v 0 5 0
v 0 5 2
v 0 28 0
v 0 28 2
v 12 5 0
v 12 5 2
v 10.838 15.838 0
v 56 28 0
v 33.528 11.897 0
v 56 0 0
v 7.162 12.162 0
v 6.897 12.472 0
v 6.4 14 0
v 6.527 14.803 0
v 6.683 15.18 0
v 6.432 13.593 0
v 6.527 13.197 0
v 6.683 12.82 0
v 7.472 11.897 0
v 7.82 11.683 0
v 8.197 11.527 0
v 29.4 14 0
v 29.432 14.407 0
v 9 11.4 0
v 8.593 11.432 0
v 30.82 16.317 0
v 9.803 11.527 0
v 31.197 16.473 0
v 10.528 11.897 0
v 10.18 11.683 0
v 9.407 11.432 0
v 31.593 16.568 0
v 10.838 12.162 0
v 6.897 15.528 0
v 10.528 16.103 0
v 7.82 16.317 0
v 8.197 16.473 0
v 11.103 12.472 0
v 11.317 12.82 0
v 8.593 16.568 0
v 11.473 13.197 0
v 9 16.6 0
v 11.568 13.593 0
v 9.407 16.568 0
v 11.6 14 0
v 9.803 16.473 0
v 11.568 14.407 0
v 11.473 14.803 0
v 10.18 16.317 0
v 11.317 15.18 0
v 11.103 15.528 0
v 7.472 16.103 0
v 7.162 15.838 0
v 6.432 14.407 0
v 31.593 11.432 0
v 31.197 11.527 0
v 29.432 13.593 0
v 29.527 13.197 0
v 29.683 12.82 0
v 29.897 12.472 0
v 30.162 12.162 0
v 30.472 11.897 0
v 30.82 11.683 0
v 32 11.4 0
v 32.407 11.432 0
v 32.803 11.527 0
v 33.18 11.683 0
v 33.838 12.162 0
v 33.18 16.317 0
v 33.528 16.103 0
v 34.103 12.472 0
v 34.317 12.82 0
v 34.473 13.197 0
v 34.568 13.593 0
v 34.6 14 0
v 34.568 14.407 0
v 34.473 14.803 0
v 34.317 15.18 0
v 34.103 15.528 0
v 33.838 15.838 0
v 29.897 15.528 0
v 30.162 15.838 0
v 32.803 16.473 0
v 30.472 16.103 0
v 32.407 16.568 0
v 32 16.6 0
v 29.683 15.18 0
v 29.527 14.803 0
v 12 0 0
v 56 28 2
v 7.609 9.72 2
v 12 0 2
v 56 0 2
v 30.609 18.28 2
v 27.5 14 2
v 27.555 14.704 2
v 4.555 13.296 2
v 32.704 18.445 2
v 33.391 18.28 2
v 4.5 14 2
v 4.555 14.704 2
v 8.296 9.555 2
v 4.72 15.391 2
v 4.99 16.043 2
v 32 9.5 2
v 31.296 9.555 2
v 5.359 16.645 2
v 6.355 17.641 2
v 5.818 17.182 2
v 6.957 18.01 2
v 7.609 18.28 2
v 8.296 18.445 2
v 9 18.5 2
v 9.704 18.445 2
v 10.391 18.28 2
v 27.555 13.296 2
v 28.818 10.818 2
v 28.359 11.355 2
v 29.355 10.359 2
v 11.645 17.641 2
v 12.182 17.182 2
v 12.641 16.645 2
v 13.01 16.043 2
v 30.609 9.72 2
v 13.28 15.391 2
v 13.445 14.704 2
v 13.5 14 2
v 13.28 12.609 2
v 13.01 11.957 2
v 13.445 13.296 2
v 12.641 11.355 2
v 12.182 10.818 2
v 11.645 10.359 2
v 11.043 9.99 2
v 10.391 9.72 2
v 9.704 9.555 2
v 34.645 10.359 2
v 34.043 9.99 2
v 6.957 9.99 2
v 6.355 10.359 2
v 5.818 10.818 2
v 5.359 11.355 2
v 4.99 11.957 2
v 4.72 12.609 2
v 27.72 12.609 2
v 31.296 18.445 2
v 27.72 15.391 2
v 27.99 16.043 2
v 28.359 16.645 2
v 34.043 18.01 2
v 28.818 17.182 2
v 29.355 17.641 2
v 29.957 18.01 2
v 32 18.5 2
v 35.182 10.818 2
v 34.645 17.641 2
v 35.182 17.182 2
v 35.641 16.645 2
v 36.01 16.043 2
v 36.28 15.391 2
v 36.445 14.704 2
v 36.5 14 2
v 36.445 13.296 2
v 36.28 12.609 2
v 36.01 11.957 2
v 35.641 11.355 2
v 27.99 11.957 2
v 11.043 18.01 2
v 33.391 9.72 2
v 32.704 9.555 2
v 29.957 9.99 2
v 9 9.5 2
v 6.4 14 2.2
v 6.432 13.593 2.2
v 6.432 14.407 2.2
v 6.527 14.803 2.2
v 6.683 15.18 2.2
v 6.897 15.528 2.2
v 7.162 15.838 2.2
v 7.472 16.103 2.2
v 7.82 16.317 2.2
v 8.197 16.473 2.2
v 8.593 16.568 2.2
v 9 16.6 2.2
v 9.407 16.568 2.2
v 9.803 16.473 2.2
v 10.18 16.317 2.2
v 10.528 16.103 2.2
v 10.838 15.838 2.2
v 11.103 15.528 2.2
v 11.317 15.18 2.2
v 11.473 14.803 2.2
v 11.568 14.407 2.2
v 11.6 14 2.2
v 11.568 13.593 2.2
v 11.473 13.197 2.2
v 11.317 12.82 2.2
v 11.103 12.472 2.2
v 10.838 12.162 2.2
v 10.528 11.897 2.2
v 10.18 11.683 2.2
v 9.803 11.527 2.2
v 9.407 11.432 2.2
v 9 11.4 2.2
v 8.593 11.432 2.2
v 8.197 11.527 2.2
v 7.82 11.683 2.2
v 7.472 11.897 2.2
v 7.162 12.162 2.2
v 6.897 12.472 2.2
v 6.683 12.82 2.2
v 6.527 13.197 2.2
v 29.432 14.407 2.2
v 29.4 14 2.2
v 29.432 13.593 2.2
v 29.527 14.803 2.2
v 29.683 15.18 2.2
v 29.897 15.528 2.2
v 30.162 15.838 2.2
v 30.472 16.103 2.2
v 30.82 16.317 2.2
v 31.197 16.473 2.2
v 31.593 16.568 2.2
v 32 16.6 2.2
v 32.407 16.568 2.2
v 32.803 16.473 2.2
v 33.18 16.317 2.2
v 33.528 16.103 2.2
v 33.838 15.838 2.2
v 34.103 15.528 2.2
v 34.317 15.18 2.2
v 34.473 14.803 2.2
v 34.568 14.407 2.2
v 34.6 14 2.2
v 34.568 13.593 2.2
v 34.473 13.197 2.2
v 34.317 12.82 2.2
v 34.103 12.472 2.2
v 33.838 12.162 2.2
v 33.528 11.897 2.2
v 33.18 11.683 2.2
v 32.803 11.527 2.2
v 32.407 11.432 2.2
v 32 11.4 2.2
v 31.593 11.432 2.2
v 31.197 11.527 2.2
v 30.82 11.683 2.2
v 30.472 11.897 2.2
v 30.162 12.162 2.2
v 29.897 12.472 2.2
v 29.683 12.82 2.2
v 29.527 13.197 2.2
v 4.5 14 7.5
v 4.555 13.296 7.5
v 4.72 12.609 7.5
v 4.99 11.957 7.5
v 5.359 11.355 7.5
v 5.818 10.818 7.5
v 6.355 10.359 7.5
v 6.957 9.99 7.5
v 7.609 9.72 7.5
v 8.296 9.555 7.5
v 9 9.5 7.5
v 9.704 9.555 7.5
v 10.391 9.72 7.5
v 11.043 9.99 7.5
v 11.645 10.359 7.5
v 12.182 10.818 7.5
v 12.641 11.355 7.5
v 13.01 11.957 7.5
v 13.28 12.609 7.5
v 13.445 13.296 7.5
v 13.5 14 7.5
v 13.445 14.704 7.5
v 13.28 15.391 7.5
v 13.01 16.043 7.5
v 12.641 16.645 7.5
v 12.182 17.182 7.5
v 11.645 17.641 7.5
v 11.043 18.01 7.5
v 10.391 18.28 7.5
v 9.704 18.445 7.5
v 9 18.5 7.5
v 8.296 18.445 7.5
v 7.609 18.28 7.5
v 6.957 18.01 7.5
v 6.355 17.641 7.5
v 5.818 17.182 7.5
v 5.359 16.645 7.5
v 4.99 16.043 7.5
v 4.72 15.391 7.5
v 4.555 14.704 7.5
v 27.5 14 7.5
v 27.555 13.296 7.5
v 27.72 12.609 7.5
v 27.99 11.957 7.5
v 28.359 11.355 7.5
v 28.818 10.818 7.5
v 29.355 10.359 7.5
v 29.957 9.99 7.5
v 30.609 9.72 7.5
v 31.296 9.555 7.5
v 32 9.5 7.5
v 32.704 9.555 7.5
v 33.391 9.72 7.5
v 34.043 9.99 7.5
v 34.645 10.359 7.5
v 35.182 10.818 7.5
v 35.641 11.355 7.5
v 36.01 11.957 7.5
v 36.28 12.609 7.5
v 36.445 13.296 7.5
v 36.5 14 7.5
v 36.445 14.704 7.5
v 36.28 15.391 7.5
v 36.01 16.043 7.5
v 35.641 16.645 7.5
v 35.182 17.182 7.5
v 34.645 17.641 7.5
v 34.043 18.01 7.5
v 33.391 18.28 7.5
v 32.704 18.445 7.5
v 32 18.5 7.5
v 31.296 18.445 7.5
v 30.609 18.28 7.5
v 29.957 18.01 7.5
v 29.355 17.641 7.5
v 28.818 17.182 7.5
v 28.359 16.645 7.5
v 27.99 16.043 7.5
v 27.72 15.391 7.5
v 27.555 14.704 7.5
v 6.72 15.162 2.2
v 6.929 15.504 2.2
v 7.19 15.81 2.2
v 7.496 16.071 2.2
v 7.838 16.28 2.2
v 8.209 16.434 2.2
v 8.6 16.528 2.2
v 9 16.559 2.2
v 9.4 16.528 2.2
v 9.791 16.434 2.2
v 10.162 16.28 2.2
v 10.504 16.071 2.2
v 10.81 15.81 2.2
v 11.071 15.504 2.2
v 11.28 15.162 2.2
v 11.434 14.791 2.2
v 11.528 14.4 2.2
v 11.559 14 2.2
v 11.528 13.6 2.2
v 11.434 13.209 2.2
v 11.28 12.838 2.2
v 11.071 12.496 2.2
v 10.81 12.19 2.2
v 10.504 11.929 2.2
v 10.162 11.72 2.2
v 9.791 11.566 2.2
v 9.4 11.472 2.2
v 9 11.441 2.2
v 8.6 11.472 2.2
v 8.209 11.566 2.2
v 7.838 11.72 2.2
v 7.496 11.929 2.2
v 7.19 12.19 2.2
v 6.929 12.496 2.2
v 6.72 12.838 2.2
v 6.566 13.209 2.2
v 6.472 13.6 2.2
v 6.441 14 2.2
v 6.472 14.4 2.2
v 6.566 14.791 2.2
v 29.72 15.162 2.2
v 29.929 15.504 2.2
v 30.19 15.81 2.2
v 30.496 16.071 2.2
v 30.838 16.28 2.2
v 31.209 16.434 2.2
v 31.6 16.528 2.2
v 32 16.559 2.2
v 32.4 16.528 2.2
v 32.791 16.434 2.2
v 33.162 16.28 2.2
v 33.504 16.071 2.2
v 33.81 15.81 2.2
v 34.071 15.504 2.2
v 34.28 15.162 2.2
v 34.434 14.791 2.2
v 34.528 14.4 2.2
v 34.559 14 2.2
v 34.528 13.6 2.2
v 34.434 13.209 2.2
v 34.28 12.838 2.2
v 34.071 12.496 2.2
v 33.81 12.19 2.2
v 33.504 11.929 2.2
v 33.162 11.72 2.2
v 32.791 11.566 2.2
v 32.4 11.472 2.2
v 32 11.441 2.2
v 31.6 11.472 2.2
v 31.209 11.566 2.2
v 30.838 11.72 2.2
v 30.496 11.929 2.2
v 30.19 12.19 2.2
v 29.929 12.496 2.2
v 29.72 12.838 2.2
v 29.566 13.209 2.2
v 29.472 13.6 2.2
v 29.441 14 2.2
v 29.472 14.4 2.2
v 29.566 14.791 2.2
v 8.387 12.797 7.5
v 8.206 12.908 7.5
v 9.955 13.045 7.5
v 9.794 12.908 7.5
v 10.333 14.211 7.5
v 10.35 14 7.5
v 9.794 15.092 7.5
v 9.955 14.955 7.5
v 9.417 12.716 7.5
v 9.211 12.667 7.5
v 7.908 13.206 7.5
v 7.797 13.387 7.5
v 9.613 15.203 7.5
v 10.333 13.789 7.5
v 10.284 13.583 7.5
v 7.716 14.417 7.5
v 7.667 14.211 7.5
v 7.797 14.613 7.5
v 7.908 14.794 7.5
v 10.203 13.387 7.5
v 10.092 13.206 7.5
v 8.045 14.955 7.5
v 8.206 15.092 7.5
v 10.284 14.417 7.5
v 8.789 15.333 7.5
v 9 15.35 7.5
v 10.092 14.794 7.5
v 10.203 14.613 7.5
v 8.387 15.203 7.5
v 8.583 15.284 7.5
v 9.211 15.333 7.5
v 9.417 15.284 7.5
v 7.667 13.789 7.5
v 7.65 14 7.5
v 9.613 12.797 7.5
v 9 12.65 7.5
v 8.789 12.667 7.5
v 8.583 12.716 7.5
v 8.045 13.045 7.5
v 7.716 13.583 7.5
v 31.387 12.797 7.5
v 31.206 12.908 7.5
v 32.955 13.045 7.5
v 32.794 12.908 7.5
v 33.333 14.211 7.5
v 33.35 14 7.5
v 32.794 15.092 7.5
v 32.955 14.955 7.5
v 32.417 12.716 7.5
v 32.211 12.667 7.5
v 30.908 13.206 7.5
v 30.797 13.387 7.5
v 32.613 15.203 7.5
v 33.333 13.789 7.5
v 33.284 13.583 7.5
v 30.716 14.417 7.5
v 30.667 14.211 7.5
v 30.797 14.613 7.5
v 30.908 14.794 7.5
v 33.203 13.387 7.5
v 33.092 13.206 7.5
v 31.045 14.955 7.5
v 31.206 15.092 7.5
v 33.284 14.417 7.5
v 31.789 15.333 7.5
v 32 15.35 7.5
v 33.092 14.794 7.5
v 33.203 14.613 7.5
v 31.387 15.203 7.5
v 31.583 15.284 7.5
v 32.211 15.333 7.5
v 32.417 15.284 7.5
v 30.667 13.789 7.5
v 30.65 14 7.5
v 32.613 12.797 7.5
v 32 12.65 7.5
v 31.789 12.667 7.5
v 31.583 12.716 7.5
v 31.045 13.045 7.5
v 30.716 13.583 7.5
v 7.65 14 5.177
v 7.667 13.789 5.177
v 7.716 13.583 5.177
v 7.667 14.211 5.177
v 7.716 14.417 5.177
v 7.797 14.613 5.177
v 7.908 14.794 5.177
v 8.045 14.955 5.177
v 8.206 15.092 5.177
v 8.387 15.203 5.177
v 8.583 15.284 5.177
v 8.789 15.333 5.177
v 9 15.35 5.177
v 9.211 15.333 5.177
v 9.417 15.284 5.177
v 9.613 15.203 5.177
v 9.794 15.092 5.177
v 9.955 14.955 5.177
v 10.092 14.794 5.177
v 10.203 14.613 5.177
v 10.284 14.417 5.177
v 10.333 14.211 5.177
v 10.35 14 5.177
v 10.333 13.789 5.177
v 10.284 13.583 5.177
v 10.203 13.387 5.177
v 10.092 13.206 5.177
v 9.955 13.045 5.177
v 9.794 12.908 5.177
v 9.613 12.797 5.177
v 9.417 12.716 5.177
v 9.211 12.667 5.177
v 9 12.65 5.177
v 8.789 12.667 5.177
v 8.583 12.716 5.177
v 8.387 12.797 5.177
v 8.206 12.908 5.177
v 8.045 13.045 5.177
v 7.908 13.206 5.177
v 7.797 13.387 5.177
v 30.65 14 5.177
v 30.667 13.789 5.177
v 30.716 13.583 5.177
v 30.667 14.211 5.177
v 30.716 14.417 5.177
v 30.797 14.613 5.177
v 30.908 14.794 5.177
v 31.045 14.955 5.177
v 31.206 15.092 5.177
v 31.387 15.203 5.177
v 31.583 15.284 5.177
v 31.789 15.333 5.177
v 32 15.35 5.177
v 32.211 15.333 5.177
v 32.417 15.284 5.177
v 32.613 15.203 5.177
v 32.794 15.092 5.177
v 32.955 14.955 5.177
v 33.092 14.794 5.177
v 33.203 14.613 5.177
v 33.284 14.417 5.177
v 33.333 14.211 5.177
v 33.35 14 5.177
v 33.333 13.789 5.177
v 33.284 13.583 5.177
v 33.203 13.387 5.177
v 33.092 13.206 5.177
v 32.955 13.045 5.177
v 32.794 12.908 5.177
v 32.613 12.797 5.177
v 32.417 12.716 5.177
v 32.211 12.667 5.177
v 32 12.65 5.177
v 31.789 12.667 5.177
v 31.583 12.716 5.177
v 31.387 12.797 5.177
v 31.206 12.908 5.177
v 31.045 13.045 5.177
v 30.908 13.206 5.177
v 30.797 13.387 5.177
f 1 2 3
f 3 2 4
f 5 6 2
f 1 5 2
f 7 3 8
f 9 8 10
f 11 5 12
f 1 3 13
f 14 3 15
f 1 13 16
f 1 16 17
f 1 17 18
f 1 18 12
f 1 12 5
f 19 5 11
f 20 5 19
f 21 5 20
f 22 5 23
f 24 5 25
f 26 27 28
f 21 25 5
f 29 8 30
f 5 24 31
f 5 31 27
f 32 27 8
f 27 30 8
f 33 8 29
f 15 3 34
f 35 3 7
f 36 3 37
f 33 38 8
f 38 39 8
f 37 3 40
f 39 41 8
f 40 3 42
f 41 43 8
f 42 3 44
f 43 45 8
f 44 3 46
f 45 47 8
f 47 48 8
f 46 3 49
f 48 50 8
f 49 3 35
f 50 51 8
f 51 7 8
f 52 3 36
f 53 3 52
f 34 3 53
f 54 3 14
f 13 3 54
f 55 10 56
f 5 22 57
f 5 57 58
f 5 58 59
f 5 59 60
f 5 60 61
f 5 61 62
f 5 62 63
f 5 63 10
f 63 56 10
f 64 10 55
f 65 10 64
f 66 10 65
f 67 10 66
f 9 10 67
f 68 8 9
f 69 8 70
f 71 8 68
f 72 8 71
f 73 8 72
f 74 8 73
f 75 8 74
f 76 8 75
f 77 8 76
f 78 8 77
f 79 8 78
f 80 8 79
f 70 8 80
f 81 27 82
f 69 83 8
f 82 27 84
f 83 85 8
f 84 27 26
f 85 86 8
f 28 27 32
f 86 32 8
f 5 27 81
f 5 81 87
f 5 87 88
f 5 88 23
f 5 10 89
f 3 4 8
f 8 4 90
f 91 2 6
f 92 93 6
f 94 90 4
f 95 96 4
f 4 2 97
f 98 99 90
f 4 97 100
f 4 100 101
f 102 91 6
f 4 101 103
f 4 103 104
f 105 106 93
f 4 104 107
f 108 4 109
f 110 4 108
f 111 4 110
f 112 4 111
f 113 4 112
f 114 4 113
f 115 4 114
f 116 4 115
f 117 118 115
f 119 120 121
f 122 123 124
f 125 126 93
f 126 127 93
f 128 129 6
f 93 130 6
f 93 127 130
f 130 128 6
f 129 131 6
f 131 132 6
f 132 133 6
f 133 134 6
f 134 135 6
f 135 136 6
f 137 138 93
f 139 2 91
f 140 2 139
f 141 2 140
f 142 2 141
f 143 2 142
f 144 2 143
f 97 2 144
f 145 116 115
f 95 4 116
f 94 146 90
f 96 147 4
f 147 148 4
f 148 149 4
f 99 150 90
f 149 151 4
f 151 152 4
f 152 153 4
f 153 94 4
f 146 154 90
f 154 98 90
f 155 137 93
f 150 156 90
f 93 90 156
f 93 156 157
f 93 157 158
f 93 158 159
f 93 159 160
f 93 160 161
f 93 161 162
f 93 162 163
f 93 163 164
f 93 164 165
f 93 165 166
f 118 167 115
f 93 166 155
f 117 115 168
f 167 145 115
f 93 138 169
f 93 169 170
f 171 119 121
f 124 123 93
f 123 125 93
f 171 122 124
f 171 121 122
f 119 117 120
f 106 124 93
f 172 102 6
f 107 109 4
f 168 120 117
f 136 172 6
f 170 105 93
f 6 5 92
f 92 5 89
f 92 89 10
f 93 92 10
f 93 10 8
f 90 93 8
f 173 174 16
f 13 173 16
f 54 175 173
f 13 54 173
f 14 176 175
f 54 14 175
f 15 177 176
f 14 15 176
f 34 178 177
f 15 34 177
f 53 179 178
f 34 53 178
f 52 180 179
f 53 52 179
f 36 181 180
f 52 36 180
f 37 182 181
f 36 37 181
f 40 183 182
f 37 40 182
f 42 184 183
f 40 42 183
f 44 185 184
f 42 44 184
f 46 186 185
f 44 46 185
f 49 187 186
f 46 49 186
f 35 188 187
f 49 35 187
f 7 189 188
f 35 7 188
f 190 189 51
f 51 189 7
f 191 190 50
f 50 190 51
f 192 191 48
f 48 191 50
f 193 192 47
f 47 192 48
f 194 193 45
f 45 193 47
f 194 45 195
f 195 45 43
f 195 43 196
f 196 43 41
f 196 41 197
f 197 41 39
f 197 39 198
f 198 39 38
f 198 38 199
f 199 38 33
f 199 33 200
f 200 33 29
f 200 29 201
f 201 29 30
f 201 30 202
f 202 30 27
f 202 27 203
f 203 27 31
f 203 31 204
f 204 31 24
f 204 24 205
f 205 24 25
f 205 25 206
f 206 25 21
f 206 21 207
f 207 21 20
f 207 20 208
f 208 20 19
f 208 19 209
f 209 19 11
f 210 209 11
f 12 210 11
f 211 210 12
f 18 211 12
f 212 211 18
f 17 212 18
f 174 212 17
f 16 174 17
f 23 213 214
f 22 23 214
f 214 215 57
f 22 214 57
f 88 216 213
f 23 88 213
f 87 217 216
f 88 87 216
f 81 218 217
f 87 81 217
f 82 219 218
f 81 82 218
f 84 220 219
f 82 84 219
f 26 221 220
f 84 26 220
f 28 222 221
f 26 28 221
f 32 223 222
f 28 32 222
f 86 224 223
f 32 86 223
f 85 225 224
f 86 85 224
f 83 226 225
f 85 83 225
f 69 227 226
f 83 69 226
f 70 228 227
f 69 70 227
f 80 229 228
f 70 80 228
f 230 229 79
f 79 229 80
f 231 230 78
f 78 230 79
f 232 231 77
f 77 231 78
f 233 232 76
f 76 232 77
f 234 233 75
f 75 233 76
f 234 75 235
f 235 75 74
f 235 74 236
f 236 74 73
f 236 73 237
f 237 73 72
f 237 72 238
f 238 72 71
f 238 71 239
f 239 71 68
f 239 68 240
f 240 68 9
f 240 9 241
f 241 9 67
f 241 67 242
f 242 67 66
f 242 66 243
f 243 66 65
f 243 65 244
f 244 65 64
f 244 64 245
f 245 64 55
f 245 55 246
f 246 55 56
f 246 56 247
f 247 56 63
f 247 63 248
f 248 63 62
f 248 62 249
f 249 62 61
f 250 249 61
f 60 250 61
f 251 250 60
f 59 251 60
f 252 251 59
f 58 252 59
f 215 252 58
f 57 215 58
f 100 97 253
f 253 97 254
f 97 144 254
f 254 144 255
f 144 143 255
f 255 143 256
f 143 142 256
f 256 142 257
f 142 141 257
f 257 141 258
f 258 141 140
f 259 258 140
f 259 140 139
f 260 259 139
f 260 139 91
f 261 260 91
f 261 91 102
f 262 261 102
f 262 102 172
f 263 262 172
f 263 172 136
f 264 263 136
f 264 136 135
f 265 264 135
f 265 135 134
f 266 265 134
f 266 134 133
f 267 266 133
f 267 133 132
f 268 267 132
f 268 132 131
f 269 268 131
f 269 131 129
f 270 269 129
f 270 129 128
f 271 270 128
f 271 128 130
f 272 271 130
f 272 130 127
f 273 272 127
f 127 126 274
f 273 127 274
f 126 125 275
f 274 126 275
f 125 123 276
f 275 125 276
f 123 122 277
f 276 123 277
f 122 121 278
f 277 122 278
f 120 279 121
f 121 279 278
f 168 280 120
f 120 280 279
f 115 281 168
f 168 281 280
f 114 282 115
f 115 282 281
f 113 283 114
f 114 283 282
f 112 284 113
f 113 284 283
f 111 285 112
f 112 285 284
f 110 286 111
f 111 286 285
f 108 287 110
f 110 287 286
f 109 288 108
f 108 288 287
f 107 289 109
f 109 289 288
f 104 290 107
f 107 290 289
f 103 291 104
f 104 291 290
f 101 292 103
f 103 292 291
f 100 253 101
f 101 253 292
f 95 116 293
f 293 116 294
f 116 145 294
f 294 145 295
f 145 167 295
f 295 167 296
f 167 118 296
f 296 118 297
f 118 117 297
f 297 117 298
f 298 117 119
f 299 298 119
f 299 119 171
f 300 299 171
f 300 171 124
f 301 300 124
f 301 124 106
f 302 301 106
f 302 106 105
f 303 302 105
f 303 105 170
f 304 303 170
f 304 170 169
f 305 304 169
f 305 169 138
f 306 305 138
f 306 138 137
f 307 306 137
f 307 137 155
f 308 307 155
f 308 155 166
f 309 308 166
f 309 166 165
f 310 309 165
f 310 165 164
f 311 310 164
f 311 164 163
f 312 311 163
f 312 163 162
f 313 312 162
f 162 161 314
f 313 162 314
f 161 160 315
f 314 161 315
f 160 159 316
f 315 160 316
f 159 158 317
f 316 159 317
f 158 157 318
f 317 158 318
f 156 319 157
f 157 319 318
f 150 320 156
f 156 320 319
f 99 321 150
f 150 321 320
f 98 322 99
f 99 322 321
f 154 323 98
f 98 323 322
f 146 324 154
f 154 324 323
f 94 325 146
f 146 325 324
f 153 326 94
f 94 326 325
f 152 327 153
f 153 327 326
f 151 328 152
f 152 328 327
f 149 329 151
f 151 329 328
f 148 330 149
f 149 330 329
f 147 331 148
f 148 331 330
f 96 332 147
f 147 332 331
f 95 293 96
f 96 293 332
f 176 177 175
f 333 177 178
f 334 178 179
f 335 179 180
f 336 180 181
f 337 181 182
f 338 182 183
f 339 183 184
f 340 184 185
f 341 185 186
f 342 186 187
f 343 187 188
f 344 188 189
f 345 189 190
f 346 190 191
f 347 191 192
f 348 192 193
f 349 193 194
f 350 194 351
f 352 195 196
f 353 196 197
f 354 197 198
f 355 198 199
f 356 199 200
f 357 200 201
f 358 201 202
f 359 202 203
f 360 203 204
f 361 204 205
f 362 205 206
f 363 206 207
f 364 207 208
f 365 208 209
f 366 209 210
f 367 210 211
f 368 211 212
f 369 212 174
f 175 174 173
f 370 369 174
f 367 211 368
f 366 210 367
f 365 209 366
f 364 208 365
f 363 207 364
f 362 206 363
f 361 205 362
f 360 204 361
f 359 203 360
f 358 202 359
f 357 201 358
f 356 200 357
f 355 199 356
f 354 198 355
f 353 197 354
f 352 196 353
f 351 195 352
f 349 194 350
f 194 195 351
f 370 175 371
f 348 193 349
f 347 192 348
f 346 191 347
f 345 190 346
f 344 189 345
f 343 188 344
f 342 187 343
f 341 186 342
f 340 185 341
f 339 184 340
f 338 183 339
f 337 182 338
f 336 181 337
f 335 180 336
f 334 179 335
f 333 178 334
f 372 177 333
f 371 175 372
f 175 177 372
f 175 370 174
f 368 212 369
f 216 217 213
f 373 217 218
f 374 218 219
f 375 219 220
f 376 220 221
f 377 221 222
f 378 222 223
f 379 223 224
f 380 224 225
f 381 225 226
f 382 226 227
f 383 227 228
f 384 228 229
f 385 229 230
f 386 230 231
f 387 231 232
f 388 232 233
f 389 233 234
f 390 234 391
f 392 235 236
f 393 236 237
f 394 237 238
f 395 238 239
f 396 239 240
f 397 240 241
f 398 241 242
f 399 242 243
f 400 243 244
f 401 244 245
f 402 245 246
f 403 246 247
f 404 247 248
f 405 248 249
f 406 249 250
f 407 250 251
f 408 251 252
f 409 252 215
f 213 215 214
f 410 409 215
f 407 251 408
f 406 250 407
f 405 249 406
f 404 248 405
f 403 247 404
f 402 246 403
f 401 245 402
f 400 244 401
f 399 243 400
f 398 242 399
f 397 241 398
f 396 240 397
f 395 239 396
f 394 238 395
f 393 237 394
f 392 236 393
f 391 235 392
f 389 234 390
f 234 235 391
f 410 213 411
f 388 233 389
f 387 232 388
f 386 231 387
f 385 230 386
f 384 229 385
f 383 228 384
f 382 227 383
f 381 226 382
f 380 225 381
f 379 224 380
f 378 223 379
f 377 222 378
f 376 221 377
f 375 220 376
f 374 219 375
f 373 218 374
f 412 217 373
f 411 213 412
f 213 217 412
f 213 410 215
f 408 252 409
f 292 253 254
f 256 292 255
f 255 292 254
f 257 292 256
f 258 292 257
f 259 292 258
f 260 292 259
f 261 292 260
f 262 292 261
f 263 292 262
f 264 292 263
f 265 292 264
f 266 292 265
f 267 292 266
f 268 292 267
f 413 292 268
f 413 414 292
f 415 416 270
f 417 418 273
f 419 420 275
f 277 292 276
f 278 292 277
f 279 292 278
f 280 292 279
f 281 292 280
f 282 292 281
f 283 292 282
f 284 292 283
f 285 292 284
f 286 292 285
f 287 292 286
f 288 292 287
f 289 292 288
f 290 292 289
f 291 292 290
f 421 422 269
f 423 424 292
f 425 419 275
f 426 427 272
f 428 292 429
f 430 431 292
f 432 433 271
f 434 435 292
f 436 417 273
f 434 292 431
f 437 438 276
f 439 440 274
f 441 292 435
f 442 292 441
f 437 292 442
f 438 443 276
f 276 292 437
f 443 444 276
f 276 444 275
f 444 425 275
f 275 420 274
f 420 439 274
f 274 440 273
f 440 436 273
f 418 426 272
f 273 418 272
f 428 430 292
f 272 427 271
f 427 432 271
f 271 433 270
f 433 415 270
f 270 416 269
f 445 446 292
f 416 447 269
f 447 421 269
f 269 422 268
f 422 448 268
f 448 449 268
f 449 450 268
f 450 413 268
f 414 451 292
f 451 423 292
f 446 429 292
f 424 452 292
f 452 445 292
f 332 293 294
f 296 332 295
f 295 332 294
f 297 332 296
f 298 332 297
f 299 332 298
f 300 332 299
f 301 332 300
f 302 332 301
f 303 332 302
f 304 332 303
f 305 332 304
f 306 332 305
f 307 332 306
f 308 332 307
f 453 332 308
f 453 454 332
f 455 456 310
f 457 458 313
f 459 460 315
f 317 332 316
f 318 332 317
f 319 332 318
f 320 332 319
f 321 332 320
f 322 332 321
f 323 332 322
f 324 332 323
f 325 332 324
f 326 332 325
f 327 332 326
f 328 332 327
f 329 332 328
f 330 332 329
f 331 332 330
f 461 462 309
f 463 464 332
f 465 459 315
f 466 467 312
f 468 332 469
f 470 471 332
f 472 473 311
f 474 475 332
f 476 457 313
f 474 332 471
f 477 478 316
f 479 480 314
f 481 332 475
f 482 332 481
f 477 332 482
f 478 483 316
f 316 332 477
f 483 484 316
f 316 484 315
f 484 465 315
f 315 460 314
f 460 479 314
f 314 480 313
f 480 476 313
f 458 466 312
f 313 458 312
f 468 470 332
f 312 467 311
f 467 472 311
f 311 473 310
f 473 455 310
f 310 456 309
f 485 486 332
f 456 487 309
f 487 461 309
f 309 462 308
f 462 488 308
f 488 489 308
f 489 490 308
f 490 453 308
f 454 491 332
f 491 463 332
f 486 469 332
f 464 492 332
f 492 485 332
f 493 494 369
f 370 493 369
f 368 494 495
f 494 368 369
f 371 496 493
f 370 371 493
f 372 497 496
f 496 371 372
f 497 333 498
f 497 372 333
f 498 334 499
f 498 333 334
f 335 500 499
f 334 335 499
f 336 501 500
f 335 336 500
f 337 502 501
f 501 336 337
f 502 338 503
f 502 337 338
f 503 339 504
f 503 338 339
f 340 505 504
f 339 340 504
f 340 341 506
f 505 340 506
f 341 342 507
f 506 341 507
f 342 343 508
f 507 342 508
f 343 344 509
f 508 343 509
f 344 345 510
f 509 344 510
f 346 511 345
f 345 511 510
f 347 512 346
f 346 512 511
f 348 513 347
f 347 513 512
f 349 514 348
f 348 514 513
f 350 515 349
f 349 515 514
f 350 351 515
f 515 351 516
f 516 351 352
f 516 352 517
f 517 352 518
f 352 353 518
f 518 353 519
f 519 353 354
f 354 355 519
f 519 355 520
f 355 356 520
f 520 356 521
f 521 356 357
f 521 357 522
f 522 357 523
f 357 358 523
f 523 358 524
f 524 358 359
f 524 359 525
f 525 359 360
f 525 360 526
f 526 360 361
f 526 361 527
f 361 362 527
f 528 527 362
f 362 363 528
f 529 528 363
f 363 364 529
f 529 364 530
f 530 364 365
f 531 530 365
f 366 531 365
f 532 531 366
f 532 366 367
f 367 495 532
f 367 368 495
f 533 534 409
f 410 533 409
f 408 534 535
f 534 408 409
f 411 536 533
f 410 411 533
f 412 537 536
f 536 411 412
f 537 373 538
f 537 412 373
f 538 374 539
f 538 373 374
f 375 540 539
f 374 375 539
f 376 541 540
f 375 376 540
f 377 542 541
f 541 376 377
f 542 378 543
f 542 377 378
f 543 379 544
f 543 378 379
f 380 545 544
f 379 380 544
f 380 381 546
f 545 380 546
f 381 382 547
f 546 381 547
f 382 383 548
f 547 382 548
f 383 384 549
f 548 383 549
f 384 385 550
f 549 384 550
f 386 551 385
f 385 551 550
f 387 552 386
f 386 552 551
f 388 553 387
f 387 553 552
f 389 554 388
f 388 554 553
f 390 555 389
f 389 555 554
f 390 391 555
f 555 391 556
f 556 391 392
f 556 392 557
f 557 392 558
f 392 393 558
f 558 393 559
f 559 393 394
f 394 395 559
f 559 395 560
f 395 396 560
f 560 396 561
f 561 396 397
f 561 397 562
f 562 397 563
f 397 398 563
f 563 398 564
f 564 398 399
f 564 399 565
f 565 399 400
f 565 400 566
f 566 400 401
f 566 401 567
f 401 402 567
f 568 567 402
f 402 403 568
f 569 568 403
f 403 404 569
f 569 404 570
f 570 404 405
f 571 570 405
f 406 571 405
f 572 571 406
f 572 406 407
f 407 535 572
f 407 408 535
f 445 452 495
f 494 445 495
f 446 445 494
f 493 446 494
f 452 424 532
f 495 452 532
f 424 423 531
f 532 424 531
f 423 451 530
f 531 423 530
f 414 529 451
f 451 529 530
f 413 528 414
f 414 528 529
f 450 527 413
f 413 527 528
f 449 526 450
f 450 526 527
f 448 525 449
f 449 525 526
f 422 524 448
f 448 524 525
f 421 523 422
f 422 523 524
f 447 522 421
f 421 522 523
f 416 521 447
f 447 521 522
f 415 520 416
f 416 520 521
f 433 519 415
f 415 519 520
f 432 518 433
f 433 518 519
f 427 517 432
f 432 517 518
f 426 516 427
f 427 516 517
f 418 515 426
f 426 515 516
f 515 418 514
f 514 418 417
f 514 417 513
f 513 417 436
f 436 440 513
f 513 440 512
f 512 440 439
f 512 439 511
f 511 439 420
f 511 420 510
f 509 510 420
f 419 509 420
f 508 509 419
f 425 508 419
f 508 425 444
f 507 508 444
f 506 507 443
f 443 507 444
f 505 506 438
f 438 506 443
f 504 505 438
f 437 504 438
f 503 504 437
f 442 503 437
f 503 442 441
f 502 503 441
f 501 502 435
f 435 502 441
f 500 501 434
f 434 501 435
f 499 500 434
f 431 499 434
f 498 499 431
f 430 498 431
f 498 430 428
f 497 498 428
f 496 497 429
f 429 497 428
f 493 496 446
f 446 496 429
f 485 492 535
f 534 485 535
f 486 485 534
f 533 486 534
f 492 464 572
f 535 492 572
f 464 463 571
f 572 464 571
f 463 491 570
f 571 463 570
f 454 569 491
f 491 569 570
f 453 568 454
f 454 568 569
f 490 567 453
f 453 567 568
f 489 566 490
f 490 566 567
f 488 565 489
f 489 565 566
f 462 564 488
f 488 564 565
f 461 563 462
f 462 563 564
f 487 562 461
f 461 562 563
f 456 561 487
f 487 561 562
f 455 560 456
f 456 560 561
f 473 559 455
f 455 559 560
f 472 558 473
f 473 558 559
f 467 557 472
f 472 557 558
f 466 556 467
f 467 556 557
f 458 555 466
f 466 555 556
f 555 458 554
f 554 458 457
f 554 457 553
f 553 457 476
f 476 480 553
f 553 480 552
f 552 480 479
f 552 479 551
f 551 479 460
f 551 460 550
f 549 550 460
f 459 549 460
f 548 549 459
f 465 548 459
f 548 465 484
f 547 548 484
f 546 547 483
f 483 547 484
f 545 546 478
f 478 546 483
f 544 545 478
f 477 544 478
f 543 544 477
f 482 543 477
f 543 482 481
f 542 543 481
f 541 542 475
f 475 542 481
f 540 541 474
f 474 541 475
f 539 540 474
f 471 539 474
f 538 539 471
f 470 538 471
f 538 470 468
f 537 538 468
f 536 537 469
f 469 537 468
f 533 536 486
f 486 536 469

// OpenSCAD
// Insulator for sensor board

$fn=40;

difference() {
	union() {
		cube([56,28,2]);
		translate([9,14,1]) cylinder(h=6.5,r=4.5);
		translate([9+23,14,1]) cylinder(h=6.5,r=4.5);
	}
	translate([9,14,-1]) cylinder(h=20,r=1.35);
	translate([9+23,14,-1]) cylinder(h=20,r=1.35);
	translate([9,14,2.1]) cylinder(r1=2.6,r2=0,h=6.4);
	translate([9+23,14,2.1]) cylinder(r1=2.6,r2=0,h=6.4);
	translate([9,14,-1]) cylinder(r=2.6,h=3.2);
	translate([9+23,14,-1]) cylinder(r=2.6,h=3.2);
	translate([-1,-1,-1]) cube([13,6,4]);
}
